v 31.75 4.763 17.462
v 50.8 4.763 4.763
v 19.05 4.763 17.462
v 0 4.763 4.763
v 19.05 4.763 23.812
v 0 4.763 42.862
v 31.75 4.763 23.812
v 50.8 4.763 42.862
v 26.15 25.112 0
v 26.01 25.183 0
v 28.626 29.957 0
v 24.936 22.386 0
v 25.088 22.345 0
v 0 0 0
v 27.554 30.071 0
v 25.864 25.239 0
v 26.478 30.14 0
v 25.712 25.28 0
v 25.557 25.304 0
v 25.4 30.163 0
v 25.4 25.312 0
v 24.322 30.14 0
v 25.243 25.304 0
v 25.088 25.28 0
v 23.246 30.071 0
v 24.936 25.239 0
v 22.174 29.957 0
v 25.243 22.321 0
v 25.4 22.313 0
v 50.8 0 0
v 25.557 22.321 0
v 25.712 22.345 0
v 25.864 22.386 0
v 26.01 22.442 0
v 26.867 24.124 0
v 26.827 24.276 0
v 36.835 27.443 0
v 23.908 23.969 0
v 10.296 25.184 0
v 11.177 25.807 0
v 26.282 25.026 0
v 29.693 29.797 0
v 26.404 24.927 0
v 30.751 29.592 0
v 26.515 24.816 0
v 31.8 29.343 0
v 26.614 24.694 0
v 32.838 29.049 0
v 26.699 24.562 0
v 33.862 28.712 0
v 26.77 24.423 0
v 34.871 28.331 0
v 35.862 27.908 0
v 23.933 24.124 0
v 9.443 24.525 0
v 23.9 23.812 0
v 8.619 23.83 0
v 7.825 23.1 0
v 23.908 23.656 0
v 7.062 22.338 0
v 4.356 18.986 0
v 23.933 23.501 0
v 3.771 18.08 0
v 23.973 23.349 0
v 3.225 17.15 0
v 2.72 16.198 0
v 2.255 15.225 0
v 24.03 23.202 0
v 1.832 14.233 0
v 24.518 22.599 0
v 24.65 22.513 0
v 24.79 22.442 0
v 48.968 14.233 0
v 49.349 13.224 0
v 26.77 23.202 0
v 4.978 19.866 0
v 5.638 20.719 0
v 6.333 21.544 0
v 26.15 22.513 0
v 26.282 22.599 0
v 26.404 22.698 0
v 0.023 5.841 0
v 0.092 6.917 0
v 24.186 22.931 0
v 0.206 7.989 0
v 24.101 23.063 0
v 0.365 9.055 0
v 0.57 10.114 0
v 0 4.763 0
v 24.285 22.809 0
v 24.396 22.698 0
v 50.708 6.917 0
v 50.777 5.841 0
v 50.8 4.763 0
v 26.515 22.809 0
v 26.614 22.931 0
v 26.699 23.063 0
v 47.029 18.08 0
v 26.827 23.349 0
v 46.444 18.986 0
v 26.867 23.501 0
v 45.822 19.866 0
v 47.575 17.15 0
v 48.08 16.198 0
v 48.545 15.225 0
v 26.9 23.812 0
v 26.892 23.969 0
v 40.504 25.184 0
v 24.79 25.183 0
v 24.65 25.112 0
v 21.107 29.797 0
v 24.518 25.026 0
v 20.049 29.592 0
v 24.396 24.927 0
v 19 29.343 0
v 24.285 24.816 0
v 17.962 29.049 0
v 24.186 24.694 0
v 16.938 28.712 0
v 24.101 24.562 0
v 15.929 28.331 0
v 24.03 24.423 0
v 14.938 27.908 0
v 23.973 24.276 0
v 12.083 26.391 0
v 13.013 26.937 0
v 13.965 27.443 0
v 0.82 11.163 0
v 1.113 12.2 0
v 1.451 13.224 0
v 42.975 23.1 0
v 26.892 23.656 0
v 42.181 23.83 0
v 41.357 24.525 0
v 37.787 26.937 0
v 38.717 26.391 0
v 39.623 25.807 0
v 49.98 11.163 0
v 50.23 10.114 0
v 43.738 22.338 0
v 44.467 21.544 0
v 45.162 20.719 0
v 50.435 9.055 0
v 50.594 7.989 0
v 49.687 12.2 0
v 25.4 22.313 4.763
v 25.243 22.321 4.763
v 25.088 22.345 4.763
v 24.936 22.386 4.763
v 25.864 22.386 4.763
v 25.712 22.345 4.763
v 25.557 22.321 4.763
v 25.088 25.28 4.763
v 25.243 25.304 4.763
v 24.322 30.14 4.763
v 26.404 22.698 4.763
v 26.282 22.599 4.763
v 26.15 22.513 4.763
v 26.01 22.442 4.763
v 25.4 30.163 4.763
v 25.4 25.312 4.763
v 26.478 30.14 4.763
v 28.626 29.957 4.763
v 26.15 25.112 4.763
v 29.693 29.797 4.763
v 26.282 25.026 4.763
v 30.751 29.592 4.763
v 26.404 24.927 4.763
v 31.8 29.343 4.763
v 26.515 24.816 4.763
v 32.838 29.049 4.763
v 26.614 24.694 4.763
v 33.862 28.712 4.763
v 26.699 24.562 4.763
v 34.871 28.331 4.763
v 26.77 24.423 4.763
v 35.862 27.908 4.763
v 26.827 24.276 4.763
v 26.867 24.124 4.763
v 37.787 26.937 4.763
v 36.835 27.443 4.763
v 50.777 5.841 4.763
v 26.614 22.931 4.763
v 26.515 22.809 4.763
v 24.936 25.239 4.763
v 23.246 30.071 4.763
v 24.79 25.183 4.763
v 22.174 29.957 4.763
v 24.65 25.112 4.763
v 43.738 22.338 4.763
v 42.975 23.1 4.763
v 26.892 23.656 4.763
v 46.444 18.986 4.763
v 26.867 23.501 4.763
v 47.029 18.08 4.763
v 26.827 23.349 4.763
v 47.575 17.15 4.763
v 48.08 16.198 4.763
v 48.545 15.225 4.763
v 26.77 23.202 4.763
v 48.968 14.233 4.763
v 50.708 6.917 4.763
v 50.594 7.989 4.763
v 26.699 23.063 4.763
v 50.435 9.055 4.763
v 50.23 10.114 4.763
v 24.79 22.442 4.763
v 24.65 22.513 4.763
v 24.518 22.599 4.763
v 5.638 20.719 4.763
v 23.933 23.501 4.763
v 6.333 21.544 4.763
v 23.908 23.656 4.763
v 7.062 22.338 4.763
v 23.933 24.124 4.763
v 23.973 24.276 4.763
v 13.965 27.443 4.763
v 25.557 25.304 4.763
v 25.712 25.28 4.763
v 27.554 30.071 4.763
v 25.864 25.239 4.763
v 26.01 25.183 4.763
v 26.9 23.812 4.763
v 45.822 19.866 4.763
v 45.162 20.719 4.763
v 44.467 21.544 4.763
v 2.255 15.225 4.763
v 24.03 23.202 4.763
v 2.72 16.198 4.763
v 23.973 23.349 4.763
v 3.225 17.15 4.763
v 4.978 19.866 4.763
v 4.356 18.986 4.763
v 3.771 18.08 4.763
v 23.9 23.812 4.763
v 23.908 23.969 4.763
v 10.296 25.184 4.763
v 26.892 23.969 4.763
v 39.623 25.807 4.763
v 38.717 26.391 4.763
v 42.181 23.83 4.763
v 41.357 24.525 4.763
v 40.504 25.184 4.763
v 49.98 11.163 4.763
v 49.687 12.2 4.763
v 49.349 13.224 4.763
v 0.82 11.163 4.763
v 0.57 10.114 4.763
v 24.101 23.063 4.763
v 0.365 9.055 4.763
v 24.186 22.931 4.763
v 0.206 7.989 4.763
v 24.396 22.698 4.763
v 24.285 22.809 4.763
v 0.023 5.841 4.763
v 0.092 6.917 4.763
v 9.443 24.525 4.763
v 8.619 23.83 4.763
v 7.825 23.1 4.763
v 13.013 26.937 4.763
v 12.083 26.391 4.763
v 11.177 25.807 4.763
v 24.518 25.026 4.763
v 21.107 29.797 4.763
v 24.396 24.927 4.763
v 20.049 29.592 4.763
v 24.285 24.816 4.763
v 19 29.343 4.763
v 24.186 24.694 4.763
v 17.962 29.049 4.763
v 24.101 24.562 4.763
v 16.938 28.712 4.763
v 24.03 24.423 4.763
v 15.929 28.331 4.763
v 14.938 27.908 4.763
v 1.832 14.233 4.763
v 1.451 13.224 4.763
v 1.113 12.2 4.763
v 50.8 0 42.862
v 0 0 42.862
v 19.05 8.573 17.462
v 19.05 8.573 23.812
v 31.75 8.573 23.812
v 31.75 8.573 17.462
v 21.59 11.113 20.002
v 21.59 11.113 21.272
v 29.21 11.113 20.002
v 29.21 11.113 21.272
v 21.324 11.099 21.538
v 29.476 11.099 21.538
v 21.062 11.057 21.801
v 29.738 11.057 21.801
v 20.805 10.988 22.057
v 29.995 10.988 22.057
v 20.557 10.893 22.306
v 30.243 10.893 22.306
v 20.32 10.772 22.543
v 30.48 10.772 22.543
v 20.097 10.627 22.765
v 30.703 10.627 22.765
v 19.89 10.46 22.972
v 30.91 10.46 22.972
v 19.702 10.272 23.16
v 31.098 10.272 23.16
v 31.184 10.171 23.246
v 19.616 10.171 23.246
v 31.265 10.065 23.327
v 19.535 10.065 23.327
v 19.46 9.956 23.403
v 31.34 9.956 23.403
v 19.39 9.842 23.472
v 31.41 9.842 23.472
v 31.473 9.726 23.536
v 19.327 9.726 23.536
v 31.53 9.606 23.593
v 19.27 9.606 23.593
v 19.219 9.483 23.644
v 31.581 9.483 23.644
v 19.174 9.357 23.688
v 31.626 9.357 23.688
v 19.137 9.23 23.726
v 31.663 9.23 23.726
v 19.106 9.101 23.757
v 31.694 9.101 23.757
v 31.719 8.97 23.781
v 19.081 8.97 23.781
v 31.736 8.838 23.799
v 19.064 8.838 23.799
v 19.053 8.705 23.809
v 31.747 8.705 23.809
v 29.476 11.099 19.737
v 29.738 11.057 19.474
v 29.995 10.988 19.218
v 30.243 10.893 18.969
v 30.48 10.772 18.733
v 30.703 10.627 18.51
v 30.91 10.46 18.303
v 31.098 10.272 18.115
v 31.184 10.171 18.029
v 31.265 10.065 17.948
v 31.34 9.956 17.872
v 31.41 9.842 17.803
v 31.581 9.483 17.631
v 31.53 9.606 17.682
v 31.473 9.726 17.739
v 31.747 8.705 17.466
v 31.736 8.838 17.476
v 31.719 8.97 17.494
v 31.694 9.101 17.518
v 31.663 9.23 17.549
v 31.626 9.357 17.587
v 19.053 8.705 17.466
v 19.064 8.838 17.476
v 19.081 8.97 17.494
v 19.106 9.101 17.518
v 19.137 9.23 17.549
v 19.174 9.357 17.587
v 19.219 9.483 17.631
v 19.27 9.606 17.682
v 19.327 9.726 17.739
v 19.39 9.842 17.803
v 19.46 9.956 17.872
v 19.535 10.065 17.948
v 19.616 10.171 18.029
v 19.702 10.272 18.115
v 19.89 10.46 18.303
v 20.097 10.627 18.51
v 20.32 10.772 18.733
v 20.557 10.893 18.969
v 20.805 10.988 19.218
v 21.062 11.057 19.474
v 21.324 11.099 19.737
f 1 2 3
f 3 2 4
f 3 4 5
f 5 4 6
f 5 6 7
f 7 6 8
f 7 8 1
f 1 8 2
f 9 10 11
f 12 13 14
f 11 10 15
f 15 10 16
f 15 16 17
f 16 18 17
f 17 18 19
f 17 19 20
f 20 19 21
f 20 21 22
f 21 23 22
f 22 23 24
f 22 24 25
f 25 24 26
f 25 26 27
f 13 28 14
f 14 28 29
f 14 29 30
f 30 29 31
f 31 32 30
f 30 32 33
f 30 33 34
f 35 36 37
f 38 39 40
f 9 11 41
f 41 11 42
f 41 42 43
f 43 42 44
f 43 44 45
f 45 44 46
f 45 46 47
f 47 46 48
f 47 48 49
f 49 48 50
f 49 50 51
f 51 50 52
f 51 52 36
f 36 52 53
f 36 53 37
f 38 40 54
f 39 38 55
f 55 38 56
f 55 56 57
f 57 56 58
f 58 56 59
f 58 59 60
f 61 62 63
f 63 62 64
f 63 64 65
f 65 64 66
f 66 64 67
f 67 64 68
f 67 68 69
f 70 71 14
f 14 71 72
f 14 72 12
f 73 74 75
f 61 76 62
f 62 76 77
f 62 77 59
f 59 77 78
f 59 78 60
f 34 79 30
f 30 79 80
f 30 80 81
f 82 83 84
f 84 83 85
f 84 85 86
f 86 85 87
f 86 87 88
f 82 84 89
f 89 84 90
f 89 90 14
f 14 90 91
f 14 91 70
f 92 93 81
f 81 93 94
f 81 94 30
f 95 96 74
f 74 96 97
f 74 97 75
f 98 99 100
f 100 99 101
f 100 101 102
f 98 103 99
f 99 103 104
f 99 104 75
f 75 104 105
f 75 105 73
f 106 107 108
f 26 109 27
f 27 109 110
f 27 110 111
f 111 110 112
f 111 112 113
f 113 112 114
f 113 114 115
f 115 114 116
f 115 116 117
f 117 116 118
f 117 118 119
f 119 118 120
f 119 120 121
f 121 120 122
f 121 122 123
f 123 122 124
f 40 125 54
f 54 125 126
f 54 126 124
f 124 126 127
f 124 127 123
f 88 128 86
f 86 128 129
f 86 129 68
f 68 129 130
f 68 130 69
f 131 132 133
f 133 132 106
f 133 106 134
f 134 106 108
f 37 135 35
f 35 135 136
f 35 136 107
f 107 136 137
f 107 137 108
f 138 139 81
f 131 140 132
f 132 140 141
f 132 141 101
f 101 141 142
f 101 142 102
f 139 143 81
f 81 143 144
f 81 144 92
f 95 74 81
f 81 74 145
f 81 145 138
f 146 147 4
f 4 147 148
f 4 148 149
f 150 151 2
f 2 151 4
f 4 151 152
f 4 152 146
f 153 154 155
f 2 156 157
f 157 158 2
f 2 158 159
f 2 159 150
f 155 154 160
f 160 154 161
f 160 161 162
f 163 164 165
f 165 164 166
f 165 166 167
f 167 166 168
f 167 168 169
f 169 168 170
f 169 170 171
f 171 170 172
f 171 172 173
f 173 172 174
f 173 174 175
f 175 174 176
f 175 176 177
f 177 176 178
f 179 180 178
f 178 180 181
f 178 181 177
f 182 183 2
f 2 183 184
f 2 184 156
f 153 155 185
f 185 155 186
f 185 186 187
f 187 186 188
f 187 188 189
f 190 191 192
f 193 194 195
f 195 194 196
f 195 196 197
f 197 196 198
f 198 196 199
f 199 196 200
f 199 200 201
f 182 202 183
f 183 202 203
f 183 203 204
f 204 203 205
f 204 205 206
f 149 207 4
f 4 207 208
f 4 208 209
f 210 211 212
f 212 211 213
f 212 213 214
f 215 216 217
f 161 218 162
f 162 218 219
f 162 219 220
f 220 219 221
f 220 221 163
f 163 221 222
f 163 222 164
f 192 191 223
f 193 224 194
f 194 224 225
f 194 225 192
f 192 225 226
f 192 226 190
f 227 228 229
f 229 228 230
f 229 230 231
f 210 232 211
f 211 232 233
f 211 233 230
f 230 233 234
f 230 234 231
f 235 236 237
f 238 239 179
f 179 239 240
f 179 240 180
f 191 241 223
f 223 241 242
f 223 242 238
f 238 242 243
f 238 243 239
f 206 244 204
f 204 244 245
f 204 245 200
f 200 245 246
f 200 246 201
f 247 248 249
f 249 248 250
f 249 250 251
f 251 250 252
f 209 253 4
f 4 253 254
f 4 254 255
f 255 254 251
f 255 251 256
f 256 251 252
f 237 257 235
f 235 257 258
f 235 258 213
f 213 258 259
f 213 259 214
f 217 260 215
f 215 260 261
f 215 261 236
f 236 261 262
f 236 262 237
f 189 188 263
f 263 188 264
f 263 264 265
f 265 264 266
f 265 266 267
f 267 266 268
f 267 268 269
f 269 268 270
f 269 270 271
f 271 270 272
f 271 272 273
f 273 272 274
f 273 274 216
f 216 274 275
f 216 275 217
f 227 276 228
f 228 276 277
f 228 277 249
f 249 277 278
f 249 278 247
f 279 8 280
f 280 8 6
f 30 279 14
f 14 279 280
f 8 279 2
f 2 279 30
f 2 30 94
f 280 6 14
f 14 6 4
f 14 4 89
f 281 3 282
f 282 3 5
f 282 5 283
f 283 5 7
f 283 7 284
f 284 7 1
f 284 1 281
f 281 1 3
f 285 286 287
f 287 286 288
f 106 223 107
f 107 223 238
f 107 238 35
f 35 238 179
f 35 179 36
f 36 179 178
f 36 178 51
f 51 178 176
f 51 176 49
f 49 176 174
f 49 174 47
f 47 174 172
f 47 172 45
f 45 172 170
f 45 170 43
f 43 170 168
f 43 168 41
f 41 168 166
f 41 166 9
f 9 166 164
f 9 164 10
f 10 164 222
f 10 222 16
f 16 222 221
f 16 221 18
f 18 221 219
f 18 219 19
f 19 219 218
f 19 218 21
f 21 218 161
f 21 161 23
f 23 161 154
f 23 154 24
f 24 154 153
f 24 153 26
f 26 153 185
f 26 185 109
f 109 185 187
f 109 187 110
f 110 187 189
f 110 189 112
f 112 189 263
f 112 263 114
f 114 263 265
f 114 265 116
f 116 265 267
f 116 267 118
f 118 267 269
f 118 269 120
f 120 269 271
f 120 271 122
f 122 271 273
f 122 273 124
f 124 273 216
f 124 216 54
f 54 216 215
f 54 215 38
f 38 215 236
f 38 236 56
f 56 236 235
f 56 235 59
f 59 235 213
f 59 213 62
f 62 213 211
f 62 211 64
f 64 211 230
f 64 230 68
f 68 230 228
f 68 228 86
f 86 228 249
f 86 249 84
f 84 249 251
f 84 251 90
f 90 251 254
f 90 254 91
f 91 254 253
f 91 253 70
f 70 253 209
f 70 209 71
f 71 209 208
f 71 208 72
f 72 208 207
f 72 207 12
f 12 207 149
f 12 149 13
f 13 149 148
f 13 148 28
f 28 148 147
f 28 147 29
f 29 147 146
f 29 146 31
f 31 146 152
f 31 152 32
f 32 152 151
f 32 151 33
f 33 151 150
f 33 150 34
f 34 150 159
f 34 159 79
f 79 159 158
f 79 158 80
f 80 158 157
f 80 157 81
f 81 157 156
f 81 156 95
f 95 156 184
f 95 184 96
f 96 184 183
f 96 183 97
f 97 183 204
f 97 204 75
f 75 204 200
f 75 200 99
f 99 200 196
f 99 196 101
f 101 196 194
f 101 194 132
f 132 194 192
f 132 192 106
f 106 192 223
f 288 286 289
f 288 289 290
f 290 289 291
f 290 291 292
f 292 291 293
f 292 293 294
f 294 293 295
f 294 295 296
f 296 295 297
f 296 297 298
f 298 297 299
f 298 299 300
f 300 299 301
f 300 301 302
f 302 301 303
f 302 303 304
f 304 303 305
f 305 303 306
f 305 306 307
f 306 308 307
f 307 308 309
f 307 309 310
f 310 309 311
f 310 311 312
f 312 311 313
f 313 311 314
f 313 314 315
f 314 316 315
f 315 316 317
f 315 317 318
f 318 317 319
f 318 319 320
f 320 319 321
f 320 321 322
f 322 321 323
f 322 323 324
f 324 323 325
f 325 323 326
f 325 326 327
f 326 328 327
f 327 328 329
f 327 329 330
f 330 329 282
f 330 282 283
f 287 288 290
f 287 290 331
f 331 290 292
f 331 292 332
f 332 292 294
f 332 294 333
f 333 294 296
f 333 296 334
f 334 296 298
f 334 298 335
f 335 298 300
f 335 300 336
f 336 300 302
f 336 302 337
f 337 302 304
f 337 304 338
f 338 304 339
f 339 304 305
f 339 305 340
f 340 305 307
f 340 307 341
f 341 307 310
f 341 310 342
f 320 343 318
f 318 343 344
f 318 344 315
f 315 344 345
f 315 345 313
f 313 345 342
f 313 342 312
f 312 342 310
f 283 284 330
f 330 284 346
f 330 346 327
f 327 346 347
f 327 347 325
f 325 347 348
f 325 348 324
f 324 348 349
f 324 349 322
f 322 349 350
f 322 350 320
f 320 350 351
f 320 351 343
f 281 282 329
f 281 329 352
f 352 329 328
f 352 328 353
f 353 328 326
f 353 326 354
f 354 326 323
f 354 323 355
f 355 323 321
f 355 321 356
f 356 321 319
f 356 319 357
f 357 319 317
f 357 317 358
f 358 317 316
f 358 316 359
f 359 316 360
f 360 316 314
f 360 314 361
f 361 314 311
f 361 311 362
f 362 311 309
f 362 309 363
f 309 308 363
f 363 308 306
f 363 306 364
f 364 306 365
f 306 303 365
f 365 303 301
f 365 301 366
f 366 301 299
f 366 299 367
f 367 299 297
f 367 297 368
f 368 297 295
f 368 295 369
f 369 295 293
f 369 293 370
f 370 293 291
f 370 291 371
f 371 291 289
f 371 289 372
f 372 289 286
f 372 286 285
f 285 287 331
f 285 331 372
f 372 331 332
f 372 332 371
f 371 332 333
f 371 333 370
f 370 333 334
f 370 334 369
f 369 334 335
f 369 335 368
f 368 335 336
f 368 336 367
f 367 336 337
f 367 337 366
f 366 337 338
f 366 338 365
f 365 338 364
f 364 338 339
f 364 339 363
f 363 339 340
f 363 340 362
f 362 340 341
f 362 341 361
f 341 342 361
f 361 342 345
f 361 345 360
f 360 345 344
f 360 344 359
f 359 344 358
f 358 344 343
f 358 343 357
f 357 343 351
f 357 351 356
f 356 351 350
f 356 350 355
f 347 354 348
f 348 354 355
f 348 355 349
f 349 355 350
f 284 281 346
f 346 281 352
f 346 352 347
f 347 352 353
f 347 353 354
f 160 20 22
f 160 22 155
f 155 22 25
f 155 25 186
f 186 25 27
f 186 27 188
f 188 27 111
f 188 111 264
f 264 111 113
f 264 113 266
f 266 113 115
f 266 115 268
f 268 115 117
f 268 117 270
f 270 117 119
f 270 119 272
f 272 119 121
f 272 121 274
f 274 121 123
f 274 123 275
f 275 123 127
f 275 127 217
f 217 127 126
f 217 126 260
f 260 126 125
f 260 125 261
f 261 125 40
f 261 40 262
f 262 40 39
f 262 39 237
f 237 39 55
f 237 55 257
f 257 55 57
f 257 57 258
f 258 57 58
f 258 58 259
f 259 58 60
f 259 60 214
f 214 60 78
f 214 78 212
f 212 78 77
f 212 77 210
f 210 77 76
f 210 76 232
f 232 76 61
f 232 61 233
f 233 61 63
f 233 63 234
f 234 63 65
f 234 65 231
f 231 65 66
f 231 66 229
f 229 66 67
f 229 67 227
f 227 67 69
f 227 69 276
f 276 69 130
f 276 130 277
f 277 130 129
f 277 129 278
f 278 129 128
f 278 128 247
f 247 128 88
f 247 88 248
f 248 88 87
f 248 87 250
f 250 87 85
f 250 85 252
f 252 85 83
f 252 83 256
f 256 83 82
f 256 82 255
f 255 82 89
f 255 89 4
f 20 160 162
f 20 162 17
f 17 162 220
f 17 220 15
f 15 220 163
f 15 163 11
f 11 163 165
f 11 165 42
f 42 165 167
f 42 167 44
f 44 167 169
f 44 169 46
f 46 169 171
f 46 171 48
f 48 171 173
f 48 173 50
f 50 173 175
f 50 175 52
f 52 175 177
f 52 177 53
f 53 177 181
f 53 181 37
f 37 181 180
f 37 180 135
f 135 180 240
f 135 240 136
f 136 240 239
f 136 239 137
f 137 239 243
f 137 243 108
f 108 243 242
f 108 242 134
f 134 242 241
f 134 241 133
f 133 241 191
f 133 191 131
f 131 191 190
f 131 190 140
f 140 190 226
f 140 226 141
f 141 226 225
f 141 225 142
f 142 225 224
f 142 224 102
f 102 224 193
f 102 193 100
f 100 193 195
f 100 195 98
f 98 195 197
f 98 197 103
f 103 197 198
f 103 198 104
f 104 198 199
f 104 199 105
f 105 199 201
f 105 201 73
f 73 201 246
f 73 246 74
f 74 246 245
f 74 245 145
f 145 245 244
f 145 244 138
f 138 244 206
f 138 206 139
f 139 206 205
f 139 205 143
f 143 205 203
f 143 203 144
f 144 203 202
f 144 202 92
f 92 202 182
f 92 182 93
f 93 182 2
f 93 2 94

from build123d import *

# Parameters (mm, degrees)
BOSS_EXTRUDE1_DEPTH = 50.8
SKETCH2_W           = 12.7
SKETCH2_H           = 6.35
BOSS_EXTRUDE2_DEPTH = 6.35
SKETCH3_R           = 1.499997
CUT_EXTRUDE1_DEPTH  = 71.299547696
FILLET1_R           = 2.54
FILLET2_R           = 25.4


with BuildPart() as part:
    # Sketch1 → Boss-Extrude1 (new body)
    with BuildSketch(Plane(origin=(0, 0, 0), x_dir=(0, 0, -1), z_dir=(1, 0, 0))):
        Polygon((0, 0), (-42.8625, 0), (-42.8625, 4.7625), (-4.7625, 4.7625), (-4.7625, 30.1625), (0, 30.1625), align=None)
    extrude(amount=BOSS_EXTRUDE1_DEPTH)

    # Sketch2 → Boss-Extrude2 (add)
    with BuildSketch(Plane(origin=(0, 4.7625, 0), x_dir=(1, 0, 0), z_dir=(0, 1, 0))):
        with Locations((25.4, -20.6375)):
            Rectangle(SKETCH2_W, SKETCH2_H)
    extrude(amount=BOSS_EXTRUDE2_DEPTH)

    # Sketch3 → Cut-Extrude1 (cut, through all)
    with BuildSketch(Plane.XY.offset(4.7625)):
        with Locations((25.4, 23.8125)):
            Circle(SKETCH3_R)
    extrude(amount=-CUT_EXTRUDE1_DEPTH, mode=Mode.SUBTRACT)

    # Fillet1
    fillet1_edges = [part.edges().sort_by_distance(p)[0] for p in [
        (19.05, 11.1125, 20.6375),
        (25.4, 11.1125, 23.8125),
        (31.75, 11.1125, 20.6375),
        (25.4, 11.1125, 17.4625),
    ]]
    fillet(fillet1_edges, radius=FILLET1_R)

    # Fillet2
    fillet2_edges = [part.edges().sort_by_distance(p)[0] for p in [
        (50.8, 30.1625, 2.38125),
        (0, 30.1625, 2.38125),
    ]]
    fillet(fillet2_edges, radius=FILLET2_R - 0.0001)  # a hair under: the kernel refuses the full size


solid = part.part
